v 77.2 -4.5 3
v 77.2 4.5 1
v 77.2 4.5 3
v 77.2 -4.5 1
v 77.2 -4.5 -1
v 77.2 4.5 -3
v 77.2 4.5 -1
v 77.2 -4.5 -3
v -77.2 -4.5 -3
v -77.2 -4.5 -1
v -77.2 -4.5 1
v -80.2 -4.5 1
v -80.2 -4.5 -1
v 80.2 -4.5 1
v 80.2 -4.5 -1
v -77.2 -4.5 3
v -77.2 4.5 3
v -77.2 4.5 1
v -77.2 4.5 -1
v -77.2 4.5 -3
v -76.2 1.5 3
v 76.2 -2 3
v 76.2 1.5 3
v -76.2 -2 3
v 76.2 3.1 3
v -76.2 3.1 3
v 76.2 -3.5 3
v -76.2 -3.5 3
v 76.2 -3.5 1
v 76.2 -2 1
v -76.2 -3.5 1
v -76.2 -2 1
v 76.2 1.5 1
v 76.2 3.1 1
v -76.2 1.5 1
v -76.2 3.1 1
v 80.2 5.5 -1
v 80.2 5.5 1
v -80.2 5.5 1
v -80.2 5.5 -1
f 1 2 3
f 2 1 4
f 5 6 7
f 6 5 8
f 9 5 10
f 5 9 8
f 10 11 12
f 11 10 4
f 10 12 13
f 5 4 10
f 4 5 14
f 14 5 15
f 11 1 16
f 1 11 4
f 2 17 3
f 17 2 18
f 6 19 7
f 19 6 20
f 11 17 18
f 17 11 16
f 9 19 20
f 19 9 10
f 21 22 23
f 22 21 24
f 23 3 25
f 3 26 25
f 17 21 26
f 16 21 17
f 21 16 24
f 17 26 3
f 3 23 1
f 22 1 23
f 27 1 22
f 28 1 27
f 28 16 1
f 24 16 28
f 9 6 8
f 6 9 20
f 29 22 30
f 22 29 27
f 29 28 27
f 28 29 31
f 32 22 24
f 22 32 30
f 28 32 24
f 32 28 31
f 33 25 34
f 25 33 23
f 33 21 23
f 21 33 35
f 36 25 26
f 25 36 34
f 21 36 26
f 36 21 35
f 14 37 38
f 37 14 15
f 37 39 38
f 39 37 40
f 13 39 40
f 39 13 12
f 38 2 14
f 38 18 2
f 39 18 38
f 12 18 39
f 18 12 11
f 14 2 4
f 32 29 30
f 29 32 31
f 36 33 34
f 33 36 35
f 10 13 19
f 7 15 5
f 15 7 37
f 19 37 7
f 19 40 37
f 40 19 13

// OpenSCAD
rotate([90, 0, 0]) union() {
    // slots
    translate([0, 0, 3.5]) difference() {
        translate([0, 0, -3.5]) cube([154.4, 6, 9], center = true);

        // plate slot
        translate([0, 2.5, -0.75]) cube([152.4, 5, 1.5], center = true);

        // pcb slot
        translate([0, 2.5, 0.8 - 1.6 - 5]) cube([152.4, 5, 1.6], center = true);
    }

    // side bar
    translate([0, 0, -0.5]) cube([160.4, 2, 10], center = true);
}

//
//Compile
//Export STL
